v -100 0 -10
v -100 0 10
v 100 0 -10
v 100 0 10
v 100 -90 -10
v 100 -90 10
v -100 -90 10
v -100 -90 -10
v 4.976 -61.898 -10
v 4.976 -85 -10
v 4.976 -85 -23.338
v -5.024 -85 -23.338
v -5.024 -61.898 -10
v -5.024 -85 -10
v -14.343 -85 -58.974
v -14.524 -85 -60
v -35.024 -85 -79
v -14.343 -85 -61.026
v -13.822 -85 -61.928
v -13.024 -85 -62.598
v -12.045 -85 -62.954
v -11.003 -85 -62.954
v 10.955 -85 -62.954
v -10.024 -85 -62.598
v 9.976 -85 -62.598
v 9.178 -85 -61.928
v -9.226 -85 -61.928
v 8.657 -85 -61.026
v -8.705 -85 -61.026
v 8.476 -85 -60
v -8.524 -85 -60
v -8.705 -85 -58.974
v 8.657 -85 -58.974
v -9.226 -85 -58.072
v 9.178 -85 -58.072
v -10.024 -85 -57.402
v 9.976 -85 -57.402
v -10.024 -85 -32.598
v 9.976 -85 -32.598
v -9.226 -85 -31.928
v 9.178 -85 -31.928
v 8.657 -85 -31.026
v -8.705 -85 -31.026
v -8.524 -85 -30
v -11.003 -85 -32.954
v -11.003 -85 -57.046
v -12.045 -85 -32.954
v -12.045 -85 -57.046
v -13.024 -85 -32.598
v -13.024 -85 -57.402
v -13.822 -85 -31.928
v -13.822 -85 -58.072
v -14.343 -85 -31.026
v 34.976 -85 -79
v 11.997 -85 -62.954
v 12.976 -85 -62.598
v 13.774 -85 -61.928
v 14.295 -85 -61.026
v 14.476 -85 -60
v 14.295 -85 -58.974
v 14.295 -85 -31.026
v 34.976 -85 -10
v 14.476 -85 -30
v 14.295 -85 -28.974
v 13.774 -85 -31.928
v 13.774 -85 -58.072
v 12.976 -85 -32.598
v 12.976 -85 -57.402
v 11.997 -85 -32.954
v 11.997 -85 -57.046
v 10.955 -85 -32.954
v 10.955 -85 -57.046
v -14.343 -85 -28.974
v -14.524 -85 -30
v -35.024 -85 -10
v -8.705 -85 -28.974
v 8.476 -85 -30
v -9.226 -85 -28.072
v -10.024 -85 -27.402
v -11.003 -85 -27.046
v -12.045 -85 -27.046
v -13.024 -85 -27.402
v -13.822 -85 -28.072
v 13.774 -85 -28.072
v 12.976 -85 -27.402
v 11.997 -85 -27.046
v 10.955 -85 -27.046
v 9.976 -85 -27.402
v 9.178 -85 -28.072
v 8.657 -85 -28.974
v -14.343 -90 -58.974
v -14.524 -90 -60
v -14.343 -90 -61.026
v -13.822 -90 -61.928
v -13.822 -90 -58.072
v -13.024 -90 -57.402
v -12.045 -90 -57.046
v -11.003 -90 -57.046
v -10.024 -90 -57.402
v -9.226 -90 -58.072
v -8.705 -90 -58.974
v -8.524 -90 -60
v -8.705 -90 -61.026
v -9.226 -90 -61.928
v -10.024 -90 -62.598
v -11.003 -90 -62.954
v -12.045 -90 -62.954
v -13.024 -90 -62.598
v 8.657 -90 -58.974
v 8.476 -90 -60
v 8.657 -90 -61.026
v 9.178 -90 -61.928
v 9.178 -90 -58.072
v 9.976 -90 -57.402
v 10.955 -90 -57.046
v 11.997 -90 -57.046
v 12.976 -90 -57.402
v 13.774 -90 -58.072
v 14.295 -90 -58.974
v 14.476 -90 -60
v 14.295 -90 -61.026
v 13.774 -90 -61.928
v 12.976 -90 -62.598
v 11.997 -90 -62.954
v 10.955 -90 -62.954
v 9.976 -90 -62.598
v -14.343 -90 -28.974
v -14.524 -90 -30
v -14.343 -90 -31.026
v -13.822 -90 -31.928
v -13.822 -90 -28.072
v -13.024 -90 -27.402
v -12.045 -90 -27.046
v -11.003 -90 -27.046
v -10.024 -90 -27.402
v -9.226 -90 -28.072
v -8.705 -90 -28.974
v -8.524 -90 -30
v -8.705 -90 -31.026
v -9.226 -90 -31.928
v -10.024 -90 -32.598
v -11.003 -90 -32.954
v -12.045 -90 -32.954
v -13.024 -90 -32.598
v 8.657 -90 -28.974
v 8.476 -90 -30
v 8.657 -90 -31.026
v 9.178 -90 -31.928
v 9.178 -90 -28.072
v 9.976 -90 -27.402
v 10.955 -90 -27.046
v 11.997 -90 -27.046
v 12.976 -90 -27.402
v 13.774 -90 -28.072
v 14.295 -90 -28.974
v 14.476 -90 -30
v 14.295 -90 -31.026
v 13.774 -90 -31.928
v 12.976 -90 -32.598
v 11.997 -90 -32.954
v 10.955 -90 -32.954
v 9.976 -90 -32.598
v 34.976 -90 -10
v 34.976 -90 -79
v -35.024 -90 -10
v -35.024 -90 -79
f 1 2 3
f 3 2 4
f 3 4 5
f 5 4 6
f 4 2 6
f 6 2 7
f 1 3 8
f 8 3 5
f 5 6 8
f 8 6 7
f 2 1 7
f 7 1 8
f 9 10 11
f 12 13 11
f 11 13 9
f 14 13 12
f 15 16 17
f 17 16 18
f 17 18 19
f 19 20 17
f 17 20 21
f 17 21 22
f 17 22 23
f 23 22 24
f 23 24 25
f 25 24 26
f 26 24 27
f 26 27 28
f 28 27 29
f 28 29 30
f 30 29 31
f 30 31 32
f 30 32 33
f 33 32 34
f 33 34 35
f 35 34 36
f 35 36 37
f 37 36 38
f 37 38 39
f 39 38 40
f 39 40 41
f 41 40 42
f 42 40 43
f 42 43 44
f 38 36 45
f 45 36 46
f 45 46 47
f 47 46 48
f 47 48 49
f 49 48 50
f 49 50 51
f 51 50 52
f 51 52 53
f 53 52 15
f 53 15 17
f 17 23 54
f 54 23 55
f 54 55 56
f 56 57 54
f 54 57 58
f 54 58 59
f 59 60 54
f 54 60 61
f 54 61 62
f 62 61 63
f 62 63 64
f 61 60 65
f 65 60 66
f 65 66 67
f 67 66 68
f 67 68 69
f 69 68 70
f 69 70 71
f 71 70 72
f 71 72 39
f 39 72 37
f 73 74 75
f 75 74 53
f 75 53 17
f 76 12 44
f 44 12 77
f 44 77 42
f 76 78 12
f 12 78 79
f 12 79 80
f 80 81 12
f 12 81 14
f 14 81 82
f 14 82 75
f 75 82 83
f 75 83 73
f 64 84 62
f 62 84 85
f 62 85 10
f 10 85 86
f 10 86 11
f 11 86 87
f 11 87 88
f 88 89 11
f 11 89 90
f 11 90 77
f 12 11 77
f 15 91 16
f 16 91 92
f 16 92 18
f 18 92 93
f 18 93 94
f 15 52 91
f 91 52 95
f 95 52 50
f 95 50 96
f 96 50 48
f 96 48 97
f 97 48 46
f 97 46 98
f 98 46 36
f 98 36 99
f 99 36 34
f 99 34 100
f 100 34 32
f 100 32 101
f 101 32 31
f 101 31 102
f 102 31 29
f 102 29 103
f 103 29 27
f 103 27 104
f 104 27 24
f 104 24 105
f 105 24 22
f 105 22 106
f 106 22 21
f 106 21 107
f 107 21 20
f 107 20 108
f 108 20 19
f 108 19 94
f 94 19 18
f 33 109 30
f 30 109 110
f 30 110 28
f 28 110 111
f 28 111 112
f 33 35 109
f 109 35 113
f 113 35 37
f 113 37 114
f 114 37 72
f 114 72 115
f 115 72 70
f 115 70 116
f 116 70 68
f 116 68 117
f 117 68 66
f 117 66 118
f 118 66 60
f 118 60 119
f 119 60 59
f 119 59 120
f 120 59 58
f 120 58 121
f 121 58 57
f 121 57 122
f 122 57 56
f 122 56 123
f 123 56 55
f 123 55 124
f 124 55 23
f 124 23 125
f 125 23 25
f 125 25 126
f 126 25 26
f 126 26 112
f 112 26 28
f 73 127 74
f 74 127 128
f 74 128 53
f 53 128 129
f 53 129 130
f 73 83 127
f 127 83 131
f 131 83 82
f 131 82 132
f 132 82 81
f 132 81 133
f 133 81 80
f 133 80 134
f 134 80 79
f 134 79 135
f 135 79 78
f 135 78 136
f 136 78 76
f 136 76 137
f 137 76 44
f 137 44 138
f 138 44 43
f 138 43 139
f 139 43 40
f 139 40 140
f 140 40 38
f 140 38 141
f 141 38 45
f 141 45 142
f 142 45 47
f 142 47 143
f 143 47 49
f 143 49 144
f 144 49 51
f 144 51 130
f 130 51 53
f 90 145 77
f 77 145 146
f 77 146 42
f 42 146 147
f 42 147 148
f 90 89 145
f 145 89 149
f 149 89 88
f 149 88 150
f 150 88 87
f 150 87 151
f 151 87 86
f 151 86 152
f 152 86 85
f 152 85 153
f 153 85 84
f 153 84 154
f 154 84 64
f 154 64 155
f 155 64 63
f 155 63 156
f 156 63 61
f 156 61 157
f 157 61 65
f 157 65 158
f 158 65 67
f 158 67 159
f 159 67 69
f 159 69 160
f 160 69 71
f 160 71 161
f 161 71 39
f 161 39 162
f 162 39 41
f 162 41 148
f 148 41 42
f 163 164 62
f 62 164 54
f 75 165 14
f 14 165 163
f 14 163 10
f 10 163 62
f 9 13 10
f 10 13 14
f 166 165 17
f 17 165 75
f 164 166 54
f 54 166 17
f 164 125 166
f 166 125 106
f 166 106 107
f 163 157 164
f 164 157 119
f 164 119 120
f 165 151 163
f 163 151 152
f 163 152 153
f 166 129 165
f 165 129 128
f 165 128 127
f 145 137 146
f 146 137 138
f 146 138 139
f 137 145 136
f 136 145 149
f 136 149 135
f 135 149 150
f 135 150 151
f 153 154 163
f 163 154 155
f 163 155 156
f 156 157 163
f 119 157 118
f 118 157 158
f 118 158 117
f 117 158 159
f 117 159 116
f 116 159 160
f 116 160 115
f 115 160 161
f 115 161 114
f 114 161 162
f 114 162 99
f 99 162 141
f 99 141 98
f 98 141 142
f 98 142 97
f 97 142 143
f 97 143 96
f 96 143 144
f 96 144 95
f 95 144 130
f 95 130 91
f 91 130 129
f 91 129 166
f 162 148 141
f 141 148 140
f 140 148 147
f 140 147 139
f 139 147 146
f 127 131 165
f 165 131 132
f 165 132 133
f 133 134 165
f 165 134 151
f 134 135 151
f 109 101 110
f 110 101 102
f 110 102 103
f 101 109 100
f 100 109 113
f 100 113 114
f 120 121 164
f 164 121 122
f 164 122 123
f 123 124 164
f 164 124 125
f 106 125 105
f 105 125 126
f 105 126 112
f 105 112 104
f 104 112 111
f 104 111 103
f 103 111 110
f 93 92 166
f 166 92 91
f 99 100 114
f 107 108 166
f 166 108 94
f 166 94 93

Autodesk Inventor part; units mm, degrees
ref_plane "YZ Plane" through (0, 0, 0) normal (1, 0, 0) x (0, 1, 0)
sketch "Boceto1" plane through (0, 0, 0) normal (0, 1, 0) x (-1, 0, 0)
  line L0 (100, 40) -> (-100, 40)
  line L1 (-100, 40) -> (-100, -40)
  line L2 (-100, -40) -> (100, -40)
  line L3 (100, -40) -> (100, 40)
  line L4 (100, 40) -> (-100, -40) construction
  line L5 (-100, 40) -> (100, -40) construction
  point P0 (0, 0)
  dimension "d0" = 200
  dimension "d1" = 80
extrude "Extrusión1" add sketch "Boceto1" along normal blind 130
sketch "Boceto2" plane through (-100, 0, 40) normal (0, 0, 1) x (1, 0, 0)
  line L0 (10, 80) -> (190, 80)
  line L1 (190, 80) -> (190, 20)
  line L2 (190, 20) -> (10, 20)
  line L3 (10, 20) -> (10, 80)
  line L4 (10, 80) -> (190, 20) construction
  line L5 (190, 80) -> (10, 20) construction
  line L6 (0, 0) -> (200, 0) projected
  line L7 (0, 0) -> (0, 130) projected
  point P0 (100, 0)
  point P1 (100, 50)
  dimension "d4" = 180
  dimension "d5" = 60
  dimension "d6" = 20
  dimension "d52" = 10
extrude "Extrusión2" cut sketch "Boceto2" against normal blind 60
sketch "Boceto3" plane through (0, 130, 0) normal (0, 1, 0) x (1, 0, 0)
  line L0 (-10.5, -21.5) -> (10.5, -21.5)
  line L1 (10.5, -21.5) -> (10.5, 21.5)
  line L2 (10.5, 21.5) -> (-10.5, 21.5)
  line L3 (-10.5, 21.5) -> (-10.5, -21.5)
  line L4 (-10.5, -21.5) -> (10.5, 21.5) construction
  line L5 (10.5, -21.5) -> (-10.5, 21.5) construction
  line L6 (100, -40) -> (100, 40) projected
  point P0 (0, 0)
  point P1 (0, 0)
  dimension "d9" = 21
  dimension "d10" = 43
  dimension "d53" = 89.5
extrude "Extrusión3" cut sketch "Boceto3" against normal blind 43
sketch "Boceto4" plane through (0, 0, 0) normal (0, -1, 0) x (1, 0, 0)
  line L0 (100, 40) -> (100, -40) projected
  line L1 (-100, 10) -> (100, 10)
  line L2 (100, 10) -> (100, -10)
  line L3 (100, -10) -> (-100, -10)
  line L4 (-100, -10) -> (-100, 10)
  line L5 (-100, 10) -> (100, -10) construction
  line L6 (100, 10) -> (-100, -10) construction
  point P0 (0, 0)
  dimension "d13" = 20
extrude "Extrusión4" add sketch "Boceto4" along normal blind 90
ref_plane "Plano de trabajo1" through (0, -90, 0) normal (0, 1, 0) x (-1, 0, 0)
sketch "Boceto7" plane through (0, -90, 0) normal (0, 1, 0) x (-1, 0, 0)
  circle A0 centre (11.5239, -60) radius 3
  circle A1 centre (-11.4761, -60) radius 3
  line L0 (105, 10) -> (-105, 10)
  line L1 (105.0239, -10) -> (-104.9761, -10)
  line L2 (105.0239, -10) -> (-104.9761, -10)
  circle A2 centre (11.5239, -30) radius 3
  circle A3 centre (-11.4761, -30) radius 3
  line L3 (11.5239, -60) -> (-11.4761, -30)
  line L4 (11.5239, -30) -> (-11.4761, -60)
  line L5 (105, 10) -> (-105, 10)
  line L6 (-105, 10) -> (-95.8154, 10)
  line L7 (0.0239, -45) -> (-34.9761, -45)
  line L8 (0.0239, -45) -> (35.0239, -45)
  line L9 (35.0239, -45) -> (35.0239, -10)
  line L10 (-100, -10) -> (100, -10)
  line L11 (35.0239, -10) -> (-34.9761, -10)
  line L12 (-34.9761, -10) -> (-34.9761, -79)
  line L13 (-34.9761, -79) -> (35.0239, -79)
  line L14 (35.0239, -79) -> (35.0239, -10)
  line L15 (-100, -10) -> (100, -10) projected
  line L16 (-40.6213, -10) -> (-84.6707, -10)
  point P0 (0, 0)
  point P1 (0, 0)
  point P2 (0.0478, -10)
  dimension "d28" = 20
  dimension "d29" = 20
  dimension "d30" = 30
  dimension "d31" = 30
  dimension "d32" = 20
  dimension "d33" = 35
  dimension "d34" = 35
  dimension "d35" = 69
extrude "Extrusión6" add sketch "Boceto7" along normal blind 5 separate body
ref_plane "Plano de trabajo3" through (-0.0239, -90, -79) normal (-1, 0, 0) x (0, 0, 1)
sketch "Boceto10" plane through (-0.0239, -90, -79) normal (-1, 0, 0) x (0, 0, 1)
  line L0 (57.1622, 5) -> (81.4718, 5) construction
  line L1 (69, 28.1018) -> (55.6622, 5)
  line L2 (69, 28.1018) -> (69, 5)
  line L3 (69, 90) -> (69, 0) projected
  line L4 (0, 5) -> (69, 5) projected
  line L5 (69, 5) -> (55.6622, 5)
  point P0 (79, 90)
  dimension "d45" = 1.5
extrude "Extrusión7" add sketch "Boceto10" along normal mid plane 10 bodies 2
ref_plane "Plano de trabajo4" through (100, 0, 40) normal (0, -1, 0) x (0, 0, -1)
split "Dividir1" plane through (100, 0, 40) removes the side toward (0, 1, 0)
properties part number "front_support_1"
